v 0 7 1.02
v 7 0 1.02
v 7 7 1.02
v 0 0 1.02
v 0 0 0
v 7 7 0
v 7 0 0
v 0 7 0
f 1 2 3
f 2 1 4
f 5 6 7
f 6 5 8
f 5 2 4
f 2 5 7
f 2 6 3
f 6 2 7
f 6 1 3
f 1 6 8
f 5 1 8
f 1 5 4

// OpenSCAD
/* Warning, this is a very basic generator with a lot of approximation 
input data : [TFBGA, JWX, 7x7x1.02mm, 144, , B, C04-00429B]
generated by com.zoubworld.electronics.cad.model3d.Basic
Date : Sun Feb 15 10:50:48 CET 2026
*/

//body
color("black")
translate([0,0,0])
cube([7.0,7.0,1.02], center=false);
